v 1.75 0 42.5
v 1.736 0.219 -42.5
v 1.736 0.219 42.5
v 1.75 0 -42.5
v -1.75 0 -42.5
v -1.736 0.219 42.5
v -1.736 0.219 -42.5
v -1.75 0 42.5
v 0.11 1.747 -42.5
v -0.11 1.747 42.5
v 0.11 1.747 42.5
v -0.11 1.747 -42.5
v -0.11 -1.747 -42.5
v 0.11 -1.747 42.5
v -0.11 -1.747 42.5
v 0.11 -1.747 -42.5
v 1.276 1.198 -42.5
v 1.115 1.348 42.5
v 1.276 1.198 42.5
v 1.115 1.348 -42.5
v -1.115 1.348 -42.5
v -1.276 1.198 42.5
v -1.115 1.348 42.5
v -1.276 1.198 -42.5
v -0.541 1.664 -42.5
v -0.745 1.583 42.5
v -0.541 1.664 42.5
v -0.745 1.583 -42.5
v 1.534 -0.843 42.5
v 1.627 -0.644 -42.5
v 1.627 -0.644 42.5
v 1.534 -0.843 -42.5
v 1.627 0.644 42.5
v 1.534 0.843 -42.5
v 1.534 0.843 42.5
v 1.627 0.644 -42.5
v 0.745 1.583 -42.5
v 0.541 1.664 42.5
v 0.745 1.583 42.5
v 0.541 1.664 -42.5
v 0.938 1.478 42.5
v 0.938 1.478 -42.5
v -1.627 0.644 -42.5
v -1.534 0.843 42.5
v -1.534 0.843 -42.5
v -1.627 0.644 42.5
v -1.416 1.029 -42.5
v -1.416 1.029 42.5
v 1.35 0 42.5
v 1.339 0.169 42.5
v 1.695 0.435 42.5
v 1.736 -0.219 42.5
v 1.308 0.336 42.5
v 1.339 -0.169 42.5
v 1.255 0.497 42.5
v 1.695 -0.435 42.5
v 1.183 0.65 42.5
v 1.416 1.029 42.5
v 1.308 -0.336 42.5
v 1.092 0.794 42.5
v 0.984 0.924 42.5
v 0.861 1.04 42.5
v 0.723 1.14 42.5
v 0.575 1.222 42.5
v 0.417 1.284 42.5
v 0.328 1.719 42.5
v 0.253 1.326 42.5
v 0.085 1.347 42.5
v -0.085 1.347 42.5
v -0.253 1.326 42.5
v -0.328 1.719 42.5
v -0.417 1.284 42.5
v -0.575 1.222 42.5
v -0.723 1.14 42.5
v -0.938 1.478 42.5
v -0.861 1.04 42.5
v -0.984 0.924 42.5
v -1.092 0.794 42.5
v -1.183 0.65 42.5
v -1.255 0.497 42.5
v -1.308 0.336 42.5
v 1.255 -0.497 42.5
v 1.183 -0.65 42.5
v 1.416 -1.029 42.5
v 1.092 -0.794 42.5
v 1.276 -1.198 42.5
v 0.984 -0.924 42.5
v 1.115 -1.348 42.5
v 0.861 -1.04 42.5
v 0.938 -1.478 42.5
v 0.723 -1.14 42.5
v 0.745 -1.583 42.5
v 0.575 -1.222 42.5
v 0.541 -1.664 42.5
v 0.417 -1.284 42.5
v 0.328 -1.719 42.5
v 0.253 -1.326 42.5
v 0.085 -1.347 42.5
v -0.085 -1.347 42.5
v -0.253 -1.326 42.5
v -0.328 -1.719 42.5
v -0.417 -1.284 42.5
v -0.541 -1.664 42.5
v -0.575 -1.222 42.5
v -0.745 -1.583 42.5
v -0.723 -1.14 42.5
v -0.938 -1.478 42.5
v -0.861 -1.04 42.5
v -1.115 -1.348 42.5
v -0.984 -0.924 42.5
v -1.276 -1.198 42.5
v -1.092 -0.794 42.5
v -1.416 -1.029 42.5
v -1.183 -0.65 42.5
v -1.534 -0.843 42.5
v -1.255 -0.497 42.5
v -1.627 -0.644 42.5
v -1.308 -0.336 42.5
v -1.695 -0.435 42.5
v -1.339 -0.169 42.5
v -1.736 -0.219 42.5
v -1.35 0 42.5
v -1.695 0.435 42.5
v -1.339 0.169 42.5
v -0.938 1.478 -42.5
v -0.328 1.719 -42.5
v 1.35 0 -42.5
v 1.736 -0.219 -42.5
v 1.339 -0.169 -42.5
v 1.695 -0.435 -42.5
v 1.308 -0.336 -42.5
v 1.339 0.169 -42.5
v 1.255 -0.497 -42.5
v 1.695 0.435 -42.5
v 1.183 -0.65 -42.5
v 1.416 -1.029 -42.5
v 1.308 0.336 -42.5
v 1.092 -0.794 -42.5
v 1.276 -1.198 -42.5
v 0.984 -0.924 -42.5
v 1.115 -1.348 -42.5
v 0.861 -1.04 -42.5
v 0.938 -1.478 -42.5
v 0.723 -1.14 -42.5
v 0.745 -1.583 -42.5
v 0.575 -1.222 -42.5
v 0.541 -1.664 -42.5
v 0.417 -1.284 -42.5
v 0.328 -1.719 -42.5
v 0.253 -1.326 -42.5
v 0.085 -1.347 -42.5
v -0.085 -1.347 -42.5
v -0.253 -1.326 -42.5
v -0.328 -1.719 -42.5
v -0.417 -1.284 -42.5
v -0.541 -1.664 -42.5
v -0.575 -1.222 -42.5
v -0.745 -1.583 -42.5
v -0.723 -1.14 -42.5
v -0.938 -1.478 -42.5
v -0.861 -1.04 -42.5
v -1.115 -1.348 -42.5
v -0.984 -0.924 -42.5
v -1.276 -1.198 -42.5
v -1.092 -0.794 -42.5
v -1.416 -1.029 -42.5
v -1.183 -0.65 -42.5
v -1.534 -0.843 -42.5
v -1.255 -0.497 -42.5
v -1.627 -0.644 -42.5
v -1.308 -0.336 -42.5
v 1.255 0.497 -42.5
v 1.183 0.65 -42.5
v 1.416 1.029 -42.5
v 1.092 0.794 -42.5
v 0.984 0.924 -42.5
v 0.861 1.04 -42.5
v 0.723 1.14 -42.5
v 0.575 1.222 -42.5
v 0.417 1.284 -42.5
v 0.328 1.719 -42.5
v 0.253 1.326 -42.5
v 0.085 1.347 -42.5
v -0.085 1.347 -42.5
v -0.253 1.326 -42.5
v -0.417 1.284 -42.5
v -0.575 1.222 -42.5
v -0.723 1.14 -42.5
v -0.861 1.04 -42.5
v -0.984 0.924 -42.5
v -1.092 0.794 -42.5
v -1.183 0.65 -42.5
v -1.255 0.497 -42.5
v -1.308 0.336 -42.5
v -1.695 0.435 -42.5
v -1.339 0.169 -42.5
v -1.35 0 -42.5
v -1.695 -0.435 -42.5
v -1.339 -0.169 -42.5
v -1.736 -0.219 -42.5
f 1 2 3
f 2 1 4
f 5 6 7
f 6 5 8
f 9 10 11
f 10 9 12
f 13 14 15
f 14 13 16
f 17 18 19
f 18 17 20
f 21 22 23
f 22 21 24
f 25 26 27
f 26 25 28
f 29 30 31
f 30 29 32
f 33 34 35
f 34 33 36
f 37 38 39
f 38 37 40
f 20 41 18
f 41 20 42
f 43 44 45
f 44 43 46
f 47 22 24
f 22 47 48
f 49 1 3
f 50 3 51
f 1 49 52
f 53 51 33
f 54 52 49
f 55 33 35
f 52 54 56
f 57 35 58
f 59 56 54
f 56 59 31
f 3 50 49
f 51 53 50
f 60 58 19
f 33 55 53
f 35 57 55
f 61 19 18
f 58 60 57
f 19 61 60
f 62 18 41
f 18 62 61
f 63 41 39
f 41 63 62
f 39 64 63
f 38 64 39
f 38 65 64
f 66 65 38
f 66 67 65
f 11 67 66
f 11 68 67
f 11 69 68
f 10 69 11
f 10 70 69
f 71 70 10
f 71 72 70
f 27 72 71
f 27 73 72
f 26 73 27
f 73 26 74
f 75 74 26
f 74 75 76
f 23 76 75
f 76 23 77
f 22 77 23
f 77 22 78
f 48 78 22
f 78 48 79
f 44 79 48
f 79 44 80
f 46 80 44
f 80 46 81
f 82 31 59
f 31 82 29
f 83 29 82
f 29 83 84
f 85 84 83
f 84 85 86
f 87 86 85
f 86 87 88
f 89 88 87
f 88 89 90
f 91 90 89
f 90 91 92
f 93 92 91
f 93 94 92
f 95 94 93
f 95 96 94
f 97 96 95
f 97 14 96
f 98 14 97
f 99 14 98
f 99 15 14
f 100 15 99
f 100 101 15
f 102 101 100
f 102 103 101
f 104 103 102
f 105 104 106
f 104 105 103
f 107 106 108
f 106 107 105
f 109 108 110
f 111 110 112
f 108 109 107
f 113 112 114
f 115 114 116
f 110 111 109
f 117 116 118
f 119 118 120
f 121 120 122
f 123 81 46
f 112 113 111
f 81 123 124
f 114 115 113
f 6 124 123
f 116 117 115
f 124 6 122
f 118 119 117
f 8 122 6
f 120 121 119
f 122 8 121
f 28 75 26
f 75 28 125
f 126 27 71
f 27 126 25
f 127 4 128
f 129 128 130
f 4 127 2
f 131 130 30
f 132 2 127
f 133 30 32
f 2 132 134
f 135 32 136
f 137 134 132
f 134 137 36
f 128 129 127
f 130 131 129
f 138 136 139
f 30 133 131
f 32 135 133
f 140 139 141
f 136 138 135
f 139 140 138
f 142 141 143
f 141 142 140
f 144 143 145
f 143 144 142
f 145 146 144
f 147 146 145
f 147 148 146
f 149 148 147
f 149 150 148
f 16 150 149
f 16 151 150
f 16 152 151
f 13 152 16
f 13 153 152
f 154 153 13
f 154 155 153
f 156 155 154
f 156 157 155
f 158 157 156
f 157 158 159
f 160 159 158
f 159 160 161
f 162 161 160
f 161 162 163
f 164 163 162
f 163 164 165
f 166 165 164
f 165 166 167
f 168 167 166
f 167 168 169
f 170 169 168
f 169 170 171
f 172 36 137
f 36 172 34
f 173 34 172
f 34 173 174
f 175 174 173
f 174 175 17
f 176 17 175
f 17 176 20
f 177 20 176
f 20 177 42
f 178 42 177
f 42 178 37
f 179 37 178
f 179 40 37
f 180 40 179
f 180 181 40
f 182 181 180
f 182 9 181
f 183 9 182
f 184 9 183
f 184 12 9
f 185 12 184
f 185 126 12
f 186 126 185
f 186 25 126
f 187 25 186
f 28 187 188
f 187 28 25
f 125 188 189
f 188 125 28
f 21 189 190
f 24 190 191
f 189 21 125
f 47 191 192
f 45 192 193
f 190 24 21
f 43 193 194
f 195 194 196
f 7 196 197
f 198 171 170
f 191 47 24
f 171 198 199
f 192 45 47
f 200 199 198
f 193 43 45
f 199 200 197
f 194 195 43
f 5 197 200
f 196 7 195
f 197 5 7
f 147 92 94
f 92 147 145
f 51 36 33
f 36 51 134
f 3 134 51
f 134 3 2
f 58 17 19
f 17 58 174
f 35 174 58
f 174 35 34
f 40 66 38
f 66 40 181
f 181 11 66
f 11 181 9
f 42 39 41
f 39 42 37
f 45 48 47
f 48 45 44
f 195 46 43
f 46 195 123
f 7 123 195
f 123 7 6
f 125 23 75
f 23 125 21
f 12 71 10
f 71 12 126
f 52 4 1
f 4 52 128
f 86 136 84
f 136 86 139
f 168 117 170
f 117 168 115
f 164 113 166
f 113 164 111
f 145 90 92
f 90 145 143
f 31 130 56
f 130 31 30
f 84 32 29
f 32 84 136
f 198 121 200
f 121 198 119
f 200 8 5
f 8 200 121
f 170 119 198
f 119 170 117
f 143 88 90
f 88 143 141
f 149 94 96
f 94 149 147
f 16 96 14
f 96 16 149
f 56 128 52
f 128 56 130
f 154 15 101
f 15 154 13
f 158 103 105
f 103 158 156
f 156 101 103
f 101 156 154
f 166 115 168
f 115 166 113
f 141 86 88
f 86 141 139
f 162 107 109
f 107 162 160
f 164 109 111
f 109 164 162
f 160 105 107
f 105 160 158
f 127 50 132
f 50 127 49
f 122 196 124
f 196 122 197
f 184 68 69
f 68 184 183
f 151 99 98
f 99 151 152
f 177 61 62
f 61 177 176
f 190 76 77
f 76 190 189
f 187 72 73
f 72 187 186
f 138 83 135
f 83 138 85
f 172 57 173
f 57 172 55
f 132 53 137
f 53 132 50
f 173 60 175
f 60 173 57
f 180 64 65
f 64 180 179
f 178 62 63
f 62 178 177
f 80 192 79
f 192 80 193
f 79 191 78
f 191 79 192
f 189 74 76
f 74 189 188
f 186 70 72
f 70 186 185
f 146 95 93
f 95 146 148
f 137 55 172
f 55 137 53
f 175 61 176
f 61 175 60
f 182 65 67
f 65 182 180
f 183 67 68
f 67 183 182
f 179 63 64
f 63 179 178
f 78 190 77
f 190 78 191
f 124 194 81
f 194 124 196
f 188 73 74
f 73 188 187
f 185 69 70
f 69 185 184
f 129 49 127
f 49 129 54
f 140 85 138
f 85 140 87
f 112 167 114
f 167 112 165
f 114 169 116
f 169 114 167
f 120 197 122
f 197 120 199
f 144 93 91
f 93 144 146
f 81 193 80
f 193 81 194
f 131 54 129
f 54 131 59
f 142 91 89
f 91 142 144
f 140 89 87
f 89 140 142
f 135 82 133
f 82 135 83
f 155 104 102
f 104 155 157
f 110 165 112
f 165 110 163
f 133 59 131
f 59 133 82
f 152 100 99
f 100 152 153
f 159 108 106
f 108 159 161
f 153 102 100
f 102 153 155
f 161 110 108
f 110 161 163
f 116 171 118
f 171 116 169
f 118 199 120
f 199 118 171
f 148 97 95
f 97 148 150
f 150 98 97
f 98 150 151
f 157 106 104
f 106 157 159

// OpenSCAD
$fn = 50;


difference() {
	union() {
		translate(v = [0, 0, -42.5000000000]) {
			cylinder(h = 85, r = 1.7500000000);
		}
	}
	union() {
		translate(v = [0, 0, -100.0000000000]) {
			cylinder(h = 200, r = 1.3500000000);
		}
	}
}
